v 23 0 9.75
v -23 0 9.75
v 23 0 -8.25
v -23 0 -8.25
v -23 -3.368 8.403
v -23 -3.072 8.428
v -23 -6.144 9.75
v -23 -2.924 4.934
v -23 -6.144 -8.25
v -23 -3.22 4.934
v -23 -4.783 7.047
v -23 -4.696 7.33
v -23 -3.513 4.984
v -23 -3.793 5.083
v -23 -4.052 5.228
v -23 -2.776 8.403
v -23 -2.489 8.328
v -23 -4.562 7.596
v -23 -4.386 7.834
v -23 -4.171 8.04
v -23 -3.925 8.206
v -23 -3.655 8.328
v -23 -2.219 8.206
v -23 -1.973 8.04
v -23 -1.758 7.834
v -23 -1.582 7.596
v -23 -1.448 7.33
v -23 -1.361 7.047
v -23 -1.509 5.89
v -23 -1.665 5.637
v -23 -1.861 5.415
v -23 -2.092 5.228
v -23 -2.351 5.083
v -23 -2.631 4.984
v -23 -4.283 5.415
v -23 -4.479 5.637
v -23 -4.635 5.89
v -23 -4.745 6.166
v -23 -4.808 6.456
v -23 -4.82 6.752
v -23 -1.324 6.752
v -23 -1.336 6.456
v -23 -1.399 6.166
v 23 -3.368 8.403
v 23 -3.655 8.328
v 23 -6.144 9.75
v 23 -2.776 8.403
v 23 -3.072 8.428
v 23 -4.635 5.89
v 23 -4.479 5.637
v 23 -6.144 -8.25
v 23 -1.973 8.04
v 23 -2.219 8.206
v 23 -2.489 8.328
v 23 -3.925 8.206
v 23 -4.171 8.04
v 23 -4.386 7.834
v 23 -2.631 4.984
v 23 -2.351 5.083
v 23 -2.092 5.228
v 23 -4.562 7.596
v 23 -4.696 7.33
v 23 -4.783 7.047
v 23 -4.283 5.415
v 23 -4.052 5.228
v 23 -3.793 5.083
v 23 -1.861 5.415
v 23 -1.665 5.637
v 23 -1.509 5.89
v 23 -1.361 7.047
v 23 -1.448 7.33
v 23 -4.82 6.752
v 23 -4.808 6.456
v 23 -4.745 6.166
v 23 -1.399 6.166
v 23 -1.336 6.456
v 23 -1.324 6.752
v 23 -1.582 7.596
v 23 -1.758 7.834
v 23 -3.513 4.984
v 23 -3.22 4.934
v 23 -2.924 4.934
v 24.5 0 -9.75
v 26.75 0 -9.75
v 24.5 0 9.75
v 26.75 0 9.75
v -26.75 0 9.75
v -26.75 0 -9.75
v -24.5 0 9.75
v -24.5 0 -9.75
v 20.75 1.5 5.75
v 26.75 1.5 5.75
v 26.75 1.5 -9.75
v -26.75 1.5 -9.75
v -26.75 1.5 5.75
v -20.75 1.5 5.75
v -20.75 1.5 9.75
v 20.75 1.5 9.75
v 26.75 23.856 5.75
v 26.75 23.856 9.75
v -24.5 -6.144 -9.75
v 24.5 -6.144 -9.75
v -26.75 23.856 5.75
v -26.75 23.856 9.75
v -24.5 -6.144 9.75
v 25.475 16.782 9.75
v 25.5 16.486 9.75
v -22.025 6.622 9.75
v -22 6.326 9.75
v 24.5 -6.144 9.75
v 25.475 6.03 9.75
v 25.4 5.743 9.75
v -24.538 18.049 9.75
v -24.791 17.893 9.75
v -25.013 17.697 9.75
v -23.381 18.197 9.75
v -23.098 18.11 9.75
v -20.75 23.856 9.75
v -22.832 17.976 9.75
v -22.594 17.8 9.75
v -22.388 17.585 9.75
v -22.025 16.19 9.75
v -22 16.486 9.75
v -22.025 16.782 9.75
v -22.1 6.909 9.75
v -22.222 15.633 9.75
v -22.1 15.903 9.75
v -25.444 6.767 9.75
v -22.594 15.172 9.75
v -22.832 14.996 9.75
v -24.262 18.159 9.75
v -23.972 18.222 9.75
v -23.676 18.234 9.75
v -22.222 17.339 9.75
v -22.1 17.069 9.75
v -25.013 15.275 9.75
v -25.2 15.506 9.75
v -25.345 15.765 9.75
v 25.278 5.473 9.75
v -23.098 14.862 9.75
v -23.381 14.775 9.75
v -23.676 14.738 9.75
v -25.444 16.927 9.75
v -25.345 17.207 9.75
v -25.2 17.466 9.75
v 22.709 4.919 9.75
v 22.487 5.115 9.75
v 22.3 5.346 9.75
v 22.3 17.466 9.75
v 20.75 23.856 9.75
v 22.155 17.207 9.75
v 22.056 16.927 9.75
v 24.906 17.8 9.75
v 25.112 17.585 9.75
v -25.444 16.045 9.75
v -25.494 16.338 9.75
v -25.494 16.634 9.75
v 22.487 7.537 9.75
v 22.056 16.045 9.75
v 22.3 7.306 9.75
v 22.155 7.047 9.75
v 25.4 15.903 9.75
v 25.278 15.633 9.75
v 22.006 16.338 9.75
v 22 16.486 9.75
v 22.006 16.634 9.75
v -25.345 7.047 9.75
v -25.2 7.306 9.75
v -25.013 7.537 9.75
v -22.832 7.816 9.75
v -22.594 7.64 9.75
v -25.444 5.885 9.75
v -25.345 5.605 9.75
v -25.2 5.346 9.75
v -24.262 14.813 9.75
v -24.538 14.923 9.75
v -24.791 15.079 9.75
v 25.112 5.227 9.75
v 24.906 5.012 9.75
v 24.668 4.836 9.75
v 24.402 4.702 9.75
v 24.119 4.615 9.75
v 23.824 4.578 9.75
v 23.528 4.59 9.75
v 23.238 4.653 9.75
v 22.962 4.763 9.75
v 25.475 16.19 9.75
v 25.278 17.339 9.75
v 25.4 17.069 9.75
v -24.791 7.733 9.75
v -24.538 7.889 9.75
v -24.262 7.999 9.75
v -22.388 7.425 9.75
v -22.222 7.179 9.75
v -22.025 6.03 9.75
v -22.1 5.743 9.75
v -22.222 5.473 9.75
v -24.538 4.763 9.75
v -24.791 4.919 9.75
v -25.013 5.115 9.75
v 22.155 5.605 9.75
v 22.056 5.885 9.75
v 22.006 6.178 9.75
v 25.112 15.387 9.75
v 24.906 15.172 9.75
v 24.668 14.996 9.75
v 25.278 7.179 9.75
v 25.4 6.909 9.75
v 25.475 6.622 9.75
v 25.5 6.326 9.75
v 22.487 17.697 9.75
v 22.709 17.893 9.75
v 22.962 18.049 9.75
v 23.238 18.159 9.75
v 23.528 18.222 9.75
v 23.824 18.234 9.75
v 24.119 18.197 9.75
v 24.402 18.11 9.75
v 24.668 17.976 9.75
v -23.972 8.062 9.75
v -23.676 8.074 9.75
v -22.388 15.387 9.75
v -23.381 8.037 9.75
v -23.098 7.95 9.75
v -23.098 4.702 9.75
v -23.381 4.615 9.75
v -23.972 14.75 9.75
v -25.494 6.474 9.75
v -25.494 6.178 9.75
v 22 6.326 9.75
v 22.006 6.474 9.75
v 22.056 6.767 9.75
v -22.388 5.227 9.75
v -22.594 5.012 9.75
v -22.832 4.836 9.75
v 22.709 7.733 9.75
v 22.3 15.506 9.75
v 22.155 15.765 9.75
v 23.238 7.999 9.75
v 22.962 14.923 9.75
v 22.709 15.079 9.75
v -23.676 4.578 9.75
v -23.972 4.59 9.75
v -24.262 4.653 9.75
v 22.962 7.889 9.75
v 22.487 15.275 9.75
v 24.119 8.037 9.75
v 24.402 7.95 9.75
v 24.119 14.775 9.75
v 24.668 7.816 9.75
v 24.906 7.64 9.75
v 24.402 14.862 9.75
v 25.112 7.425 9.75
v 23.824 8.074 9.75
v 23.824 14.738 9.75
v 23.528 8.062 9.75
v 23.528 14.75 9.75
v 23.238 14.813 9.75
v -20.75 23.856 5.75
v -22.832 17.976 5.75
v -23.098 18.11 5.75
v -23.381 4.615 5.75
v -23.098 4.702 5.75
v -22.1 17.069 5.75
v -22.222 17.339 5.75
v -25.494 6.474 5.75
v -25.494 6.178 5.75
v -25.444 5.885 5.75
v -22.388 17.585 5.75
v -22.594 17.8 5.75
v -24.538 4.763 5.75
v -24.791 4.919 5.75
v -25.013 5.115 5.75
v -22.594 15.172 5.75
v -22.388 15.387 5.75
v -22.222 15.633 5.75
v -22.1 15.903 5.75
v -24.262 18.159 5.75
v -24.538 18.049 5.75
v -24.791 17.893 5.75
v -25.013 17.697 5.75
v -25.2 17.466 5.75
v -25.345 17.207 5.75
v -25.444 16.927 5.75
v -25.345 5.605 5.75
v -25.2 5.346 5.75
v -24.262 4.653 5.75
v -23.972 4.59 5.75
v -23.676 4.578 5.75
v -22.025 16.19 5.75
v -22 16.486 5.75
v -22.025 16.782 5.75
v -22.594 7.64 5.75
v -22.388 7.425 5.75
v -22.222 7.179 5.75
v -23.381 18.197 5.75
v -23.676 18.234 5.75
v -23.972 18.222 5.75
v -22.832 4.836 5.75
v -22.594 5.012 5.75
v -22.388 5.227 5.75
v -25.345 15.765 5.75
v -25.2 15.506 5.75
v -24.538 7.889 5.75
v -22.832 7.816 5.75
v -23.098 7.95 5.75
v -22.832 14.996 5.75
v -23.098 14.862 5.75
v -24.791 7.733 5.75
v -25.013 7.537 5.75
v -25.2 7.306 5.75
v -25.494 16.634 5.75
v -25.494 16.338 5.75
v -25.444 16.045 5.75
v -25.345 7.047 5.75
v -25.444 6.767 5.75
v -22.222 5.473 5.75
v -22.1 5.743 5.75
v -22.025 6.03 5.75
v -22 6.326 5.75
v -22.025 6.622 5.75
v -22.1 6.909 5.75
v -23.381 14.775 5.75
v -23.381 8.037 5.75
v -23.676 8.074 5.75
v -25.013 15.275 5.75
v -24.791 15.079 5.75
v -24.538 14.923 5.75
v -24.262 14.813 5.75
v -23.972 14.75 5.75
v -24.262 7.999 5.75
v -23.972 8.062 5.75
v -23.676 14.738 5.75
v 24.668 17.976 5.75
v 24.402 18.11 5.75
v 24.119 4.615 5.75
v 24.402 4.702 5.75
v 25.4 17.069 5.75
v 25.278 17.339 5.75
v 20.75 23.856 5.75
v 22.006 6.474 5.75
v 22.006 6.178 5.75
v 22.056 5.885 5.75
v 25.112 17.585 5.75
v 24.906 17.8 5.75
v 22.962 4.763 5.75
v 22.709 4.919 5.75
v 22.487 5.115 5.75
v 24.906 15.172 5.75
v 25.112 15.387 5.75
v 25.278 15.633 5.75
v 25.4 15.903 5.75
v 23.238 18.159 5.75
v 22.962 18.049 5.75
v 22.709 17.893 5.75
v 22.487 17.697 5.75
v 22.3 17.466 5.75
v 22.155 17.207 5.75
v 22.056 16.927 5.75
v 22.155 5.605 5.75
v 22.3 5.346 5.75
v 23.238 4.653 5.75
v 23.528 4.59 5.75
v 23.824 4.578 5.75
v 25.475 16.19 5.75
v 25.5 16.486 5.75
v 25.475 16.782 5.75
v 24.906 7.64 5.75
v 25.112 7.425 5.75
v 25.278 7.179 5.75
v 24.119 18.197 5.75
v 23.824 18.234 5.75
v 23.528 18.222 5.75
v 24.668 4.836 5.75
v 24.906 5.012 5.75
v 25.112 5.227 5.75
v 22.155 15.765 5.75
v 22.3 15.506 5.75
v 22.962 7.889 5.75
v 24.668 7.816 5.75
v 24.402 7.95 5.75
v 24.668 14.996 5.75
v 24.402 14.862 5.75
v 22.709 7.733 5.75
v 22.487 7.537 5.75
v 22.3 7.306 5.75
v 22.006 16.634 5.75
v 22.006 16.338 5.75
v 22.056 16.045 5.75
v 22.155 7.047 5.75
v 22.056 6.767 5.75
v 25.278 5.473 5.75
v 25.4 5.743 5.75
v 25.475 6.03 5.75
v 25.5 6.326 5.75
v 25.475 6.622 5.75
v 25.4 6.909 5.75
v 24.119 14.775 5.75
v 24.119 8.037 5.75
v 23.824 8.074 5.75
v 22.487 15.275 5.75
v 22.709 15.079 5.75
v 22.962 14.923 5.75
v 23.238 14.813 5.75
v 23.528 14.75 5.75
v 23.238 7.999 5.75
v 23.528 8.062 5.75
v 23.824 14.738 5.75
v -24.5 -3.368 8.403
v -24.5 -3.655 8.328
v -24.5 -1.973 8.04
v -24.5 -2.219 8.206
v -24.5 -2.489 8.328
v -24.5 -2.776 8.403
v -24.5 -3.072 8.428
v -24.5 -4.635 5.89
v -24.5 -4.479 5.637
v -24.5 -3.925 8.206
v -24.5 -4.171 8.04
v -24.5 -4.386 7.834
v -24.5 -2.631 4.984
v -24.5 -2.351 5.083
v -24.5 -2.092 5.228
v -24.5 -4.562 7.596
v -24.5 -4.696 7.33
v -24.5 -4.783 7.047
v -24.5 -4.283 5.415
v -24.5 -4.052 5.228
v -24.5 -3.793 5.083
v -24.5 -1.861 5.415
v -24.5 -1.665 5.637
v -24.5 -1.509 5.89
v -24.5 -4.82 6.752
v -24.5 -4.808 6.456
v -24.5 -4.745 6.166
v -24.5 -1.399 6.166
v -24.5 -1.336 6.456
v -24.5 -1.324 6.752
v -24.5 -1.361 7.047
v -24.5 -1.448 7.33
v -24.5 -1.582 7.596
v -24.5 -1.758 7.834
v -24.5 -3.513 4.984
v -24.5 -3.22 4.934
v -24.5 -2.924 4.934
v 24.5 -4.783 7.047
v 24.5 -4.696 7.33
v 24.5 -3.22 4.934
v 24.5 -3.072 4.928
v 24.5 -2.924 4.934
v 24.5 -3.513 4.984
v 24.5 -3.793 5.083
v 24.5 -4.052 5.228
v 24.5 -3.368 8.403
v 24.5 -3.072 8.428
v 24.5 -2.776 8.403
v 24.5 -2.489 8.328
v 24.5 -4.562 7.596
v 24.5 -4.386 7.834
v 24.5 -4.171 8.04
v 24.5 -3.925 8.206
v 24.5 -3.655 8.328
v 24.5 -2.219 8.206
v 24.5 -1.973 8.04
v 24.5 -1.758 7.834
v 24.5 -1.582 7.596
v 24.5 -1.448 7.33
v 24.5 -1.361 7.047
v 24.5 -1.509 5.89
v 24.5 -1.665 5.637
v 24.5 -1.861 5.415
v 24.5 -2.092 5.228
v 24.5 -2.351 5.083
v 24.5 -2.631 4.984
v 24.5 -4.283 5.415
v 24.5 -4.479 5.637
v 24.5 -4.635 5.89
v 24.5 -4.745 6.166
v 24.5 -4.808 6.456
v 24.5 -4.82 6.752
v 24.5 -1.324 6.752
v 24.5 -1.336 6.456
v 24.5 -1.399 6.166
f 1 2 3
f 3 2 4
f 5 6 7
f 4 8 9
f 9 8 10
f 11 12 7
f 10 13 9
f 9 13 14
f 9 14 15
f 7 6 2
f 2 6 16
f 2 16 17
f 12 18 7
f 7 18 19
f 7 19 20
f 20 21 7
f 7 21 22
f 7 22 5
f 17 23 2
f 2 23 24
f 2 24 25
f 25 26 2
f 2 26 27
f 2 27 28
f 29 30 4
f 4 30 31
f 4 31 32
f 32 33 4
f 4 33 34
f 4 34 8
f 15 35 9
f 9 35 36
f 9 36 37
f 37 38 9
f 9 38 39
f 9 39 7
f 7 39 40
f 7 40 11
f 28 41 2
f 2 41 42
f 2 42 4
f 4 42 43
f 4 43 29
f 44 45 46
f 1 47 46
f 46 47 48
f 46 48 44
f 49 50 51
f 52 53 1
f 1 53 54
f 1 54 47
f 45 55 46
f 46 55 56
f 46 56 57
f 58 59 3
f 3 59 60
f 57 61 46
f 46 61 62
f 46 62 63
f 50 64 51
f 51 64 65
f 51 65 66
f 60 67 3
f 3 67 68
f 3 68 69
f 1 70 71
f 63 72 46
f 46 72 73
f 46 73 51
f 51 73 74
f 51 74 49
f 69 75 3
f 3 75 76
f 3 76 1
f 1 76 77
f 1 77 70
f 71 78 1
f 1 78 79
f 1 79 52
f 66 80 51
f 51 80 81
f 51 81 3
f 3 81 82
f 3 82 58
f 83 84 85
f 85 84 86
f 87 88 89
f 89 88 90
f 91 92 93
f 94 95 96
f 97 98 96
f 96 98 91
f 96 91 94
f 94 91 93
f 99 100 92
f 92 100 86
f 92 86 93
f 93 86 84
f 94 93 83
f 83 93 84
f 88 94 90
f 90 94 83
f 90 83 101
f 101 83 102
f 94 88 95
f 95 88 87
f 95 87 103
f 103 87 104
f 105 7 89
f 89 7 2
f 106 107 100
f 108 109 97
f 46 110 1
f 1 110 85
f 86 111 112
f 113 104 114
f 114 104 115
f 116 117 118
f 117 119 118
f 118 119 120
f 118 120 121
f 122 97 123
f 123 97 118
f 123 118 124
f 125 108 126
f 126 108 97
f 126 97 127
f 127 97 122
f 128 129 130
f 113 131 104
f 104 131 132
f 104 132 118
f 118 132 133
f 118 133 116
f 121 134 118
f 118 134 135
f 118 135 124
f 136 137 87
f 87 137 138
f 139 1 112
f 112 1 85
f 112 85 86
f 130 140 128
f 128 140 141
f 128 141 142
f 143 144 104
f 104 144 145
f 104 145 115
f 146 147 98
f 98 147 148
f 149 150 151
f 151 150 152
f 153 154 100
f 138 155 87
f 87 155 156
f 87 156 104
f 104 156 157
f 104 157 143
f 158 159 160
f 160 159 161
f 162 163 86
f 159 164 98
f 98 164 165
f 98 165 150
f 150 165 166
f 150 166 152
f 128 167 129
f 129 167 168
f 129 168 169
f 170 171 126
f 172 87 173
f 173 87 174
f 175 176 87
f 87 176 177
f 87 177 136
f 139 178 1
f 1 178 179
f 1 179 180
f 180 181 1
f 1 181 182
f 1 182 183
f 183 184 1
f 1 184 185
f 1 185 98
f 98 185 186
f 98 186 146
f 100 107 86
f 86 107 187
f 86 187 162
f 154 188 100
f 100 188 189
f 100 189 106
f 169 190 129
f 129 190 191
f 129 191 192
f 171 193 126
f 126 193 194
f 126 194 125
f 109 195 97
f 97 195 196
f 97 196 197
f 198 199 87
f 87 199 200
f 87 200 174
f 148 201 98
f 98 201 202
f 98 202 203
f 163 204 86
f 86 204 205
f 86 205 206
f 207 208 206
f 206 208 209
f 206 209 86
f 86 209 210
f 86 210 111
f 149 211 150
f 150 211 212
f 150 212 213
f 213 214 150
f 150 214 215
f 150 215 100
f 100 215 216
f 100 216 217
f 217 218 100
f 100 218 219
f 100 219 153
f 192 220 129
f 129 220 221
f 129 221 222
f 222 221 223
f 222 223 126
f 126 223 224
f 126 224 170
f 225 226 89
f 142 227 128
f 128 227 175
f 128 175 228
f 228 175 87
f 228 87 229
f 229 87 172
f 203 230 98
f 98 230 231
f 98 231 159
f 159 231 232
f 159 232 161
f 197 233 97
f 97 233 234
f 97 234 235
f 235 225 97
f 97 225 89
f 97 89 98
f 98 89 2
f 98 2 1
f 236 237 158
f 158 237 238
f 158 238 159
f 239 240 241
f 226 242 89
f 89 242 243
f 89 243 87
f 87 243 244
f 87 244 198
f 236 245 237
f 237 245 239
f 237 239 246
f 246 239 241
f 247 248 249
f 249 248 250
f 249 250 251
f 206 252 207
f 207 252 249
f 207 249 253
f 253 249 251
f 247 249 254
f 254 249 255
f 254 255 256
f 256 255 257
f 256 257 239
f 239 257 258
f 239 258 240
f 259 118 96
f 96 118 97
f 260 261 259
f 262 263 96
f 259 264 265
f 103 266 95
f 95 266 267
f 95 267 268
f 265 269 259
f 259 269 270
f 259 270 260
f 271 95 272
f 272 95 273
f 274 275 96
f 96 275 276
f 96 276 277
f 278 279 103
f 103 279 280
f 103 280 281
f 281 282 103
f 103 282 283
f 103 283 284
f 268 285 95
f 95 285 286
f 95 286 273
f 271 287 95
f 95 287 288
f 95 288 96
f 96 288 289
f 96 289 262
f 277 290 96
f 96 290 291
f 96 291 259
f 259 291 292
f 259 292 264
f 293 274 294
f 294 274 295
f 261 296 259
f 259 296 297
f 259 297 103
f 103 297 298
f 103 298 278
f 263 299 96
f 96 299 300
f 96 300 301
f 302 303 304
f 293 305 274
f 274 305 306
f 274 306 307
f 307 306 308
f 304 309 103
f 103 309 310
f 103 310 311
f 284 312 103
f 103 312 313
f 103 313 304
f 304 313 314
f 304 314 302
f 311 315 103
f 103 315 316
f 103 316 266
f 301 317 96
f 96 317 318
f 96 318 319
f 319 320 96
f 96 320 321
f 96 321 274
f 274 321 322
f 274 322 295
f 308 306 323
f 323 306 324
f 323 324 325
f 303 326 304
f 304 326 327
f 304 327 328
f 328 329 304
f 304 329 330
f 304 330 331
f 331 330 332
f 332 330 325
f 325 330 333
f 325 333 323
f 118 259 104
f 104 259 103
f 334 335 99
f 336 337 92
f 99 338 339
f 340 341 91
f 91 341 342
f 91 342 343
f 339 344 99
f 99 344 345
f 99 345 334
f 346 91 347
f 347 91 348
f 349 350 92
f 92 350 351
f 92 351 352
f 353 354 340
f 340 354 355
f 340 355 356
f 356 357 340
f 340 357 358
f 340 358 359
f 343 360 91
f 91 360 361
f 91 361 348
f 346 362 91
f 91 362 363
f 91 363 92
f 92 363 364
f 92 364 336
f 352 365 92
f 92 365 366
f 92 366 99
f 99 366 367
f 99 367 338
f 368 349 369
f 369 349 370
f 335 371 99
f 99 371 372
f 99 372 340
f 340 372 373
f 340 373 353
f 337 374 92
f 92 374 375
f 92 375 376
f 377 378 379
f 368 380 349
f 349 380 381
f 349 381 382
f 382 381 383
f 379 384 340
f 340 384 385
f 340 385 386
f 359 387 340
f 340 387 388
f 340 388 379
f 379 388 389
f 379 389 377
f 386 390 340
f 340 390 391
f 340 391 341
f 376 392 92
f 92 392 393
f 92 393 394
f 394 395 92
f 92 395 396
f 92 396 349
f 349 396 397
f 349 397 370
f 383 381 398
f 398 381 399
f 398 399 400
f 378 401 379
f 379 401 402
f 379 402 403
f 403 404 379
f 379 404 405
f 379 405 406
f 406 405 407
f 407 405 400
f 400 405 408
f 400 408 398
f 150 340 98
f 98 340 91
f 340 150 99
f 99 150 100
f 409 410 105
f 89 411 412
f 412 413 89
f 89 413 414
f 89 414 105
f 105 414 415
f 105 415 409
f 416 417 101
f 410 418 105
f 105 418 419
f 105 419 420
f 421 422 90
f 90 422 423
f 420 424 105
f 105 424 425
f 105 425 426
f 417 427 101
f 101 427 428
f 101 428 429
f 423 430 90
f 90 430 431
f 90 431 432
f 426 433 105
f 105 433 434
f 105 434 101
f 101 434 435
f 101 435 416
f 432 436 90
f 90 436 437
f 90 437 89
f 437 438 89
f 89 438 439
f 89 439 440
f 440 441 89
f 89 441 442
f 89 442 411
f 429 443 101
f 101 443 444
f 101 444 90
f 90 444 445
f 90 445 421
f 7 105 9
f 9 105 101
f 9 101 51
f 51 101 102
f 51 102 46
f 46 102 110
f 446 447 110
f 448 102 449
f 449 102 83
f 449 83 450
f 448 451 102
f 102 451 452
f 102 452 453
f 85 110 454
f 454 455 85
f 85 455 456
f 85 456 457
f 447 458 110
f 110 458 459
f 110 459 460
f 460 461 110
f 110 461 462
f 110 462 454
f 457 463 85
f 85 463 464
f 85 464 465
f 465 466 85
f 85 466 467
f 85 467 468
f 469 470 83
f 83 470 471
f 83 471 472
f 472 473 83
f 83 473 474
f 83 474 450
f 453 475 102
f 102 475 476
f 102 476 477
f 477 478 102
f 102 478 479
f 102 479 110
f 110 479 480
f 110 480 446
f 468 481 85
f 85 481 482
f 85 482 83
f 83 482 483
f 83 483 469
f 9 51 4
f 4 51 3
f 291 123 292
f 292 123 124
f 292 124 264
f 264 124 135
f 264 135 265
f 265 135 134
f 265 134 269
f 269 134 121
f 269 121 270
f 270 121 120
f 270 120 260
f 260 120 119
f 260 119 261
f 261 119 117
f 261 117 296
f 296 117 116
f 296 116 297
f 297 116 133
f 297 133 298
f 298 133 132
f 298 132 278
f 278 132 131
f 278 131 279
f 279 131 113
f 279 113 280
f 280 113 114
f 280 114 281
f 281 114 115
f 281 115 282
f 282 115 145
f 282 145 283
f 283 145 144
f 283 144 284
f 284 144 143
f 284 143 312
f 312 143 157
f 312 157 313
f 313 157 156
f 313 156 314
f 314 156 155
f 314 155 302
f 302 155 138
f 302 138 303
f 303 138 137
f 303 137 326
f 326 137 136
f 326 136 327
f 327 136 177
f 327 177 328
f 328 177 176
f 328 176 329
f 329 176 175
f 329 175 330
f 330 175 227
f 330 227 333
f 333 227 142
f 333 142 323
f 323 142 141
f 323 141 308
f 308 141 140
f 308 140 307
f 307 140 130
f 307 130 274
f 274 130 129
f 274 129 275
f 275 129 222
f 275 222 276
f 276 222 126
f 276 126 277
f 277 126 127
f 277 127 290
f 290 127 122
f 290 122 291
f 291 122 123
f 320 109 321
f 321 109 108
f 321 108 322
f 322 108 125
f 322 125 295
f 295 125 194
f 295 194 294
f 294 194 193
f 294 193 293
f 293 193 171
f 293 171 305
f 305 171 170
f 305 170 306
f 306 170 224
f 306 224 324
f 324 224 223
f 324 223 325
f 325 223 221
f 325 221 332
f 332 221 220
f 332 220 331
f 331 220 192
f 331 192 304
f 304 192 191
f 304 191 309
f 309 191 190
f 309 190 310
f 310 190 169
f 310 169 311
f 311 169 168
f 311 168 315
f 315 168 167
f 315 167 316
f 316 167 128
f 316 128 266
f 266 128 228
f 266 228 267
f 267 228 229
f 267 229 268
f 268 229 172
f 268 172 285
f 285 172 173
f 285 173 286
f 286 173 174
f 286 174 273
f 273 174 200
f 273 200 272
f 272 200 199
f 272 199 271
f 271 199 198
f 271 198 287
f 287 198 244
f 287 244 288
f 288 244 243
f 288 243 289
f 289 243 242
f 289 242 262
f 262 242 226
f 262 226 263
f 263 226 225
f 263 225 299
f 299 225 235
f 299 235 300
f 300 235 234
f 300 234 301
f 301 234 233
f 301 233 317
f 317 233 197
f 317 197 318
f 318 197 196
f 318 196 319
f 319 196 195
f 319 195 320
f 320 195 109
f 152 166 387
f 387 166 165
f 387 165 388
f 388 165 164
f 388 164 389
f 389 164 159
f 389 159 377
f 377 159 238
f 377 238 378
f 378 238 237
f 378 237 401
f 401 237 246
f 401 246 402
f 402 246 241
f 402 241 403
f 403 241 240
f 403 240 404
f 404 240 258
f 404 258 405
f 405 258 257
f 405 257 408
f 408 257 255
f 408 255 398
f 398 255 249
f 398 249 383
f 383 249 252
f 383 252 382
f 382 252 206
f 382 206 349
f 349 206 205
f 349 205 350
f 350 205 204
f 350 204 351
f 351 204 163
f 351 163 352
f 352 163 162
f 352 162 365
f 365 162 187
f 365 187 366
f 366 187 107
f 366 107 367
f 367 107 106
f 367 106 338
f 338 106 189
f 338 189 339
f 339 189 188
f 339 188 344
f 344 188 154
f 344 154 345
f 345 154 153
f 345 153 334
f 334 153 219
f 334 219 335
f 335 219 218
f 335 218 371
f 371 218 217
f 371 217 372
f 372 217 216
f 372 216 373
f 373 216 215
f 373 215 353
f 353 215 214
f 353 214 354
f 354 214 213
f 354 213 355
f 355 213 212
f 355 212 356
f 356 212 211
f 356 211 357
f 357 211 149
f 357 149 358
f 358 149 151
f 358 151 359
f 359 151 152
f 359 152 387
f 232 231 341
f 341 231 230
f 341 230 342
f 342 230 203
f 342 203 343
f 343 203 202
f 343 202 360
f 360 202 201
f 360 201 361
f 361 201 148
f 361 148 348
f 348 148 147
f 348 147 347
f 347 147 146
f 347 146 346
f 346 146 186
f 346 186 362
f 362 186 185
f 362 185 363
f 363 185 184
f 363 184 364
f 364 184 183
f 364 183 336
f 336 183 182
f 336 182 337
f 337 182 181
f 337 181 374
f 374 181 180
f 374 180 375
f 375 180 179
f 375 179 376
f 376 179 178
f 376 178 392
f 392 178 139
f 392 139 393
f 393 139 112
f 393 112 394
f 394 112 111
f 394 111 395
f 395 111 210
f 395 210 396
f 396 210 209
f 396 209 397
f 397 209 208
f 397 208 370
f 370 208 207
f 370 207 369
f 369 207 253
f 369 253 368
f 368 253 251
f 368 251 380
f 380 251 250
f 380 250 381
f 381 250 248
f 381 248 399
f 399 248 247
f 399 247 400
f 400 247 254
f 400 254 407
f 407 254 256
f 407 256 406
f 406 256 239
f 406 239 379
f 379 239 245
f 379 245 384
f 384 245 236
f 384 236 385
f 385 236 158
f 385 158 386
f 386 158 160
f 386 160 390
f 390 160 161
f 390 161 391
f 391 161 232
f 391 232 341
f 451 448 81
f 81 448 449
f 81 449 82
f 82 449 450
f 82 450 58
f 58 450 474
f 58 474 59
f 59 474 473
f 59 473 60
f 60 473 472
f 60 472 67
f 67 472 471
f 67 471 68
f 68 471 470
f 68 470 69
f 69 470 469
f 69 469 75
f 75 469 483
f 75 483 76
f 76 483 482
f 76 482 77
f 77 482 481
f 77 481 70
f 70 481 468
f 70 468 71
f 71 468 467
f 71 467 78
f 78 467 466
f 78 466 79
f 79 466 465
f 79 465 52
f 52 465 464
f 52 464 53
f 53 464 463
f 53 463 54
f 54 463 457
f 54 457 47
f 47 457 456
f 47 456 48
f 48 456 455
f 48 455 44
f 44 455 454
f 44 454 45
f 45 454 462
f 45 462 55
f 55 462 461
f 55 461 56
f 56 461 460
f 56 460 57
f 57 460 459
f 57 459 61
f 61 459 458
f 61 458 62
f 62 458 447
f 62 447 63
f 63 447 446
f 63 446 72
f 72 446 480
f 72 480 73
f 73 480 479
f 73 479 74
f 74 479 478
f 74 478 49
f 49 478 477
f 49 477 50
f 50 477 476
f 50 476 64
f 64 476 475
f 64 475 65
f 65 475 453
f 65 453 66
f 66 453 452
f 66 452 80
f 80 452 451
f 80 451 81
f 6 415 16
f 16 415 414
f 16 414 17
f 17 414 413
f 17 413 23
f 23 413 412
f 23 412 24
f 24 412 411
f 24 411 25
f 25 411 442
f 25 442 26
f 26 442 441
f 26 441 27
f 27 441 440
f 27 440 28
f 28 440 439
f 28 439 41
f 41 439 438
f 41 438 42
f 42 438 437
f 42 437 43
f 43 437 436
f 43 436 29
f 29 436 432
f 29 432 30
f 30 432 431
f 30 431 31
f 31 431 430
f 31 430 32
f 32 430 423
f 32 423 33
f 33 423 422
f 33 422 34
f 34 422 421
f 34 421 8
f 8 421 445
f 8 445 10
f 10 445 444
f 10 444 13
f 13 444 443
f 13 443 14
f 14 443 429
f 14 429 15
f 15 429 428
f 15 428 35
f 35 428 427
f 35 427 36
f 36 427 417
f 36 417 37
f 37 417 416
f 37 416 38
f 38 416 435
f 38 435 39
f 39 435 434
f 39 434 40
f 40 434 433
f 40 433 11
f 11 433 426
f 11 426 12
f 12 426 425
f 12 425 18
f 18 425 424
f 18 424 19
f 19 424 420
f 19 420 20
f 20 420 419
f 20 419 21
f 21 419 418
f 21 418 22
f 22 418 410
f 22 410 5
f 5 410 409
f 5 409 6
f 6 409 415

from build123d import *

# Parameters (mm, degrees)
ESQUISSE1_W             = 53.5
ESQUISSE1_H             = 19.5
BOSS_EXTRU_1_DEPTH      = 1.5
ESQUISSE2_W             = 6
ESQUISSE2_H             = 4
BOSS_EXTRU_2_DEPTH      = 22.356
ESQUISSE3_W             = 1.5
ESQUISSE3_H             = 19.5
BOSS_EXTRU_3_DEPTH      = 6.144
ESQUISSE4_W             = 46
ESQUISSE4_H             = 1.5
BOSS_EXTRU_4_DEPTH      = 6.144
ENL_V_MAT_EXTRU_1_REACH = 42.803
ESQUISSE5_R             = 1.75
ESQUISSE6_R             = 1.75
ENL_V_MAT_EXTRU_2_DEPTH = 58.364917293


with BuildPart() as part:
    # Esquisse1 → Boss.-Extru.1 (new body)
    with BuildSketch(Plane(origin=(0, 0, 0), x_dir=(1, 0, 0), z_dir=(0, 1, 0))):
        Rectangle(ESQUISSE1_W, ESQUISSE1_H)
    extrude(amount=BOSS_EXTRU_1_DEPTH)

    # Esquisse2 → Boss.-Extru.2 (add)
    with BuildSketch(Plane(origin=(0, 1.5, 0), x_dir=(1, 0, 0), z_dir=(0, 1, 0))):
        with Locations((-23.75, -7.75)):
            Rectangle(ESQUISSE2_W, ESQUISSE2_H)
        with Locations((23.75, -7.75)):
            Rectangle(ESQUISSE2_W, ESQUISSE2_H)
    extrude(amount=BOSS_EXTRU_2_DEPTH)

    # Esquisse3 → Boss.-Extru.3 (add)
    with BuildSketch(Plane.XZ):
        with Locations((-23.75, 0)):
            Rectangle(ESQUISSE3_W, ESQUISSE3_H)
    boss_extru_3 = extrude(amount=BOSS_EXTRU_3_DEPTH)

    # Symétrie1: Boss.-Extru.3 across plane
    add(boss_extru_3.mirror(Plane(origin=(0, 0, 0), x_dir=(0, 0, 1), z_dir=(1, 0, 0))))

    # Esquisse4 → Boss.-Extru.4 (add)
    with BuildSketch(Plane(origin=(0, 0, 0), x_dir=(-1, 0, 0), z_dir=(0, -1, 0))):
        with Locations((0, 9)):
            Rectangle(ESQUISSE4_W, ESQUISSE4_H)
    extrude(amount=BOSS_EXTRU_4_DEPTH)

    # Esquisse5 → Enlèv. mat.-Extru.1 (cut, up to next)
    with BuildSketch(Plane.XY.offset(9.75), mode=Mode.PRIVATE) as enl_v_mat_extru_1_sk1:
        with Locations((-23.75, 6.326)):
            Circle(ESQUISSE5_R)
    enl_v_mat_extru_1_tool1 = extrude(enl_v_mat_extru_1_sk1.sketch, amount=-ENL_V_MAT_EXTRU_1_REACH, mode=Mode.PRIVATE) & part.part
    # Esquisse5 → Enlèv. mat.-Extru.1 (cut, up to next)
    with BuildSketch(Plane.XY.offset(9.75), mode=Mode.PRIVATE) as enl_v_mat_extru_1_sk2:
        with Locations((-23.75, 16.486)):
            Circle(ESQUISSE5_R)
    enl_v_mat_extru_1_tool2 = extrude(enl_v_mat_extru_1_sk2.sketch, amount=-ENL_V_MAT_EXTRU_1_REACH, mode=Mode.PRIVATE) & part.part
    enl_v_mat_extru_1_1 = enl_v_mat_extru_1_tool1.solids().sort_by_distance((-23.75, 6.326, 9.75))[0]
    add(enl_v_mat_extru_1_1, mode=Mode.SUBTRACT)
    enl_v_mat_extru_1_2 = enl_v_mat_extru_1_tool2.solids().sort_by_distance((-23.75, 16.486, 9.75))[0]
    add(enl_v_mat_extru_1_2, mode=Mode.SUBTRACT)
    enl_v_mat_extru_1 = enl_v_mat_extru_1_1 + enl_v_mat_extru_1_2  # Enlèv. mat.-Extru.1 as one shape, for the pattern or mirror that repeats it

    # Symétrie2: Enlèv. mat.-Extru.1 across plane
    add(enl_v_mat_extru_1.mirror(Plane(origin=(0, 0, 0), x_dir=(0, 0, 1), z_dir=(1, 0, 0))), mode=Mode.SUBTRACT)

    # Esquisse6 → Enlèv. mat.-Extru.2 (cut, through all)
    with BuildSketch(Plane.ZY.offset(24.5)):
        with Locations((6.678, -3.072)):
            Circle(ESQUISSE6_R)
    extrude(amount=-ENL_V_MAT_EXTRU_2_DEPTH, mode=Mode.SUBTRACT)


solid = part.part
